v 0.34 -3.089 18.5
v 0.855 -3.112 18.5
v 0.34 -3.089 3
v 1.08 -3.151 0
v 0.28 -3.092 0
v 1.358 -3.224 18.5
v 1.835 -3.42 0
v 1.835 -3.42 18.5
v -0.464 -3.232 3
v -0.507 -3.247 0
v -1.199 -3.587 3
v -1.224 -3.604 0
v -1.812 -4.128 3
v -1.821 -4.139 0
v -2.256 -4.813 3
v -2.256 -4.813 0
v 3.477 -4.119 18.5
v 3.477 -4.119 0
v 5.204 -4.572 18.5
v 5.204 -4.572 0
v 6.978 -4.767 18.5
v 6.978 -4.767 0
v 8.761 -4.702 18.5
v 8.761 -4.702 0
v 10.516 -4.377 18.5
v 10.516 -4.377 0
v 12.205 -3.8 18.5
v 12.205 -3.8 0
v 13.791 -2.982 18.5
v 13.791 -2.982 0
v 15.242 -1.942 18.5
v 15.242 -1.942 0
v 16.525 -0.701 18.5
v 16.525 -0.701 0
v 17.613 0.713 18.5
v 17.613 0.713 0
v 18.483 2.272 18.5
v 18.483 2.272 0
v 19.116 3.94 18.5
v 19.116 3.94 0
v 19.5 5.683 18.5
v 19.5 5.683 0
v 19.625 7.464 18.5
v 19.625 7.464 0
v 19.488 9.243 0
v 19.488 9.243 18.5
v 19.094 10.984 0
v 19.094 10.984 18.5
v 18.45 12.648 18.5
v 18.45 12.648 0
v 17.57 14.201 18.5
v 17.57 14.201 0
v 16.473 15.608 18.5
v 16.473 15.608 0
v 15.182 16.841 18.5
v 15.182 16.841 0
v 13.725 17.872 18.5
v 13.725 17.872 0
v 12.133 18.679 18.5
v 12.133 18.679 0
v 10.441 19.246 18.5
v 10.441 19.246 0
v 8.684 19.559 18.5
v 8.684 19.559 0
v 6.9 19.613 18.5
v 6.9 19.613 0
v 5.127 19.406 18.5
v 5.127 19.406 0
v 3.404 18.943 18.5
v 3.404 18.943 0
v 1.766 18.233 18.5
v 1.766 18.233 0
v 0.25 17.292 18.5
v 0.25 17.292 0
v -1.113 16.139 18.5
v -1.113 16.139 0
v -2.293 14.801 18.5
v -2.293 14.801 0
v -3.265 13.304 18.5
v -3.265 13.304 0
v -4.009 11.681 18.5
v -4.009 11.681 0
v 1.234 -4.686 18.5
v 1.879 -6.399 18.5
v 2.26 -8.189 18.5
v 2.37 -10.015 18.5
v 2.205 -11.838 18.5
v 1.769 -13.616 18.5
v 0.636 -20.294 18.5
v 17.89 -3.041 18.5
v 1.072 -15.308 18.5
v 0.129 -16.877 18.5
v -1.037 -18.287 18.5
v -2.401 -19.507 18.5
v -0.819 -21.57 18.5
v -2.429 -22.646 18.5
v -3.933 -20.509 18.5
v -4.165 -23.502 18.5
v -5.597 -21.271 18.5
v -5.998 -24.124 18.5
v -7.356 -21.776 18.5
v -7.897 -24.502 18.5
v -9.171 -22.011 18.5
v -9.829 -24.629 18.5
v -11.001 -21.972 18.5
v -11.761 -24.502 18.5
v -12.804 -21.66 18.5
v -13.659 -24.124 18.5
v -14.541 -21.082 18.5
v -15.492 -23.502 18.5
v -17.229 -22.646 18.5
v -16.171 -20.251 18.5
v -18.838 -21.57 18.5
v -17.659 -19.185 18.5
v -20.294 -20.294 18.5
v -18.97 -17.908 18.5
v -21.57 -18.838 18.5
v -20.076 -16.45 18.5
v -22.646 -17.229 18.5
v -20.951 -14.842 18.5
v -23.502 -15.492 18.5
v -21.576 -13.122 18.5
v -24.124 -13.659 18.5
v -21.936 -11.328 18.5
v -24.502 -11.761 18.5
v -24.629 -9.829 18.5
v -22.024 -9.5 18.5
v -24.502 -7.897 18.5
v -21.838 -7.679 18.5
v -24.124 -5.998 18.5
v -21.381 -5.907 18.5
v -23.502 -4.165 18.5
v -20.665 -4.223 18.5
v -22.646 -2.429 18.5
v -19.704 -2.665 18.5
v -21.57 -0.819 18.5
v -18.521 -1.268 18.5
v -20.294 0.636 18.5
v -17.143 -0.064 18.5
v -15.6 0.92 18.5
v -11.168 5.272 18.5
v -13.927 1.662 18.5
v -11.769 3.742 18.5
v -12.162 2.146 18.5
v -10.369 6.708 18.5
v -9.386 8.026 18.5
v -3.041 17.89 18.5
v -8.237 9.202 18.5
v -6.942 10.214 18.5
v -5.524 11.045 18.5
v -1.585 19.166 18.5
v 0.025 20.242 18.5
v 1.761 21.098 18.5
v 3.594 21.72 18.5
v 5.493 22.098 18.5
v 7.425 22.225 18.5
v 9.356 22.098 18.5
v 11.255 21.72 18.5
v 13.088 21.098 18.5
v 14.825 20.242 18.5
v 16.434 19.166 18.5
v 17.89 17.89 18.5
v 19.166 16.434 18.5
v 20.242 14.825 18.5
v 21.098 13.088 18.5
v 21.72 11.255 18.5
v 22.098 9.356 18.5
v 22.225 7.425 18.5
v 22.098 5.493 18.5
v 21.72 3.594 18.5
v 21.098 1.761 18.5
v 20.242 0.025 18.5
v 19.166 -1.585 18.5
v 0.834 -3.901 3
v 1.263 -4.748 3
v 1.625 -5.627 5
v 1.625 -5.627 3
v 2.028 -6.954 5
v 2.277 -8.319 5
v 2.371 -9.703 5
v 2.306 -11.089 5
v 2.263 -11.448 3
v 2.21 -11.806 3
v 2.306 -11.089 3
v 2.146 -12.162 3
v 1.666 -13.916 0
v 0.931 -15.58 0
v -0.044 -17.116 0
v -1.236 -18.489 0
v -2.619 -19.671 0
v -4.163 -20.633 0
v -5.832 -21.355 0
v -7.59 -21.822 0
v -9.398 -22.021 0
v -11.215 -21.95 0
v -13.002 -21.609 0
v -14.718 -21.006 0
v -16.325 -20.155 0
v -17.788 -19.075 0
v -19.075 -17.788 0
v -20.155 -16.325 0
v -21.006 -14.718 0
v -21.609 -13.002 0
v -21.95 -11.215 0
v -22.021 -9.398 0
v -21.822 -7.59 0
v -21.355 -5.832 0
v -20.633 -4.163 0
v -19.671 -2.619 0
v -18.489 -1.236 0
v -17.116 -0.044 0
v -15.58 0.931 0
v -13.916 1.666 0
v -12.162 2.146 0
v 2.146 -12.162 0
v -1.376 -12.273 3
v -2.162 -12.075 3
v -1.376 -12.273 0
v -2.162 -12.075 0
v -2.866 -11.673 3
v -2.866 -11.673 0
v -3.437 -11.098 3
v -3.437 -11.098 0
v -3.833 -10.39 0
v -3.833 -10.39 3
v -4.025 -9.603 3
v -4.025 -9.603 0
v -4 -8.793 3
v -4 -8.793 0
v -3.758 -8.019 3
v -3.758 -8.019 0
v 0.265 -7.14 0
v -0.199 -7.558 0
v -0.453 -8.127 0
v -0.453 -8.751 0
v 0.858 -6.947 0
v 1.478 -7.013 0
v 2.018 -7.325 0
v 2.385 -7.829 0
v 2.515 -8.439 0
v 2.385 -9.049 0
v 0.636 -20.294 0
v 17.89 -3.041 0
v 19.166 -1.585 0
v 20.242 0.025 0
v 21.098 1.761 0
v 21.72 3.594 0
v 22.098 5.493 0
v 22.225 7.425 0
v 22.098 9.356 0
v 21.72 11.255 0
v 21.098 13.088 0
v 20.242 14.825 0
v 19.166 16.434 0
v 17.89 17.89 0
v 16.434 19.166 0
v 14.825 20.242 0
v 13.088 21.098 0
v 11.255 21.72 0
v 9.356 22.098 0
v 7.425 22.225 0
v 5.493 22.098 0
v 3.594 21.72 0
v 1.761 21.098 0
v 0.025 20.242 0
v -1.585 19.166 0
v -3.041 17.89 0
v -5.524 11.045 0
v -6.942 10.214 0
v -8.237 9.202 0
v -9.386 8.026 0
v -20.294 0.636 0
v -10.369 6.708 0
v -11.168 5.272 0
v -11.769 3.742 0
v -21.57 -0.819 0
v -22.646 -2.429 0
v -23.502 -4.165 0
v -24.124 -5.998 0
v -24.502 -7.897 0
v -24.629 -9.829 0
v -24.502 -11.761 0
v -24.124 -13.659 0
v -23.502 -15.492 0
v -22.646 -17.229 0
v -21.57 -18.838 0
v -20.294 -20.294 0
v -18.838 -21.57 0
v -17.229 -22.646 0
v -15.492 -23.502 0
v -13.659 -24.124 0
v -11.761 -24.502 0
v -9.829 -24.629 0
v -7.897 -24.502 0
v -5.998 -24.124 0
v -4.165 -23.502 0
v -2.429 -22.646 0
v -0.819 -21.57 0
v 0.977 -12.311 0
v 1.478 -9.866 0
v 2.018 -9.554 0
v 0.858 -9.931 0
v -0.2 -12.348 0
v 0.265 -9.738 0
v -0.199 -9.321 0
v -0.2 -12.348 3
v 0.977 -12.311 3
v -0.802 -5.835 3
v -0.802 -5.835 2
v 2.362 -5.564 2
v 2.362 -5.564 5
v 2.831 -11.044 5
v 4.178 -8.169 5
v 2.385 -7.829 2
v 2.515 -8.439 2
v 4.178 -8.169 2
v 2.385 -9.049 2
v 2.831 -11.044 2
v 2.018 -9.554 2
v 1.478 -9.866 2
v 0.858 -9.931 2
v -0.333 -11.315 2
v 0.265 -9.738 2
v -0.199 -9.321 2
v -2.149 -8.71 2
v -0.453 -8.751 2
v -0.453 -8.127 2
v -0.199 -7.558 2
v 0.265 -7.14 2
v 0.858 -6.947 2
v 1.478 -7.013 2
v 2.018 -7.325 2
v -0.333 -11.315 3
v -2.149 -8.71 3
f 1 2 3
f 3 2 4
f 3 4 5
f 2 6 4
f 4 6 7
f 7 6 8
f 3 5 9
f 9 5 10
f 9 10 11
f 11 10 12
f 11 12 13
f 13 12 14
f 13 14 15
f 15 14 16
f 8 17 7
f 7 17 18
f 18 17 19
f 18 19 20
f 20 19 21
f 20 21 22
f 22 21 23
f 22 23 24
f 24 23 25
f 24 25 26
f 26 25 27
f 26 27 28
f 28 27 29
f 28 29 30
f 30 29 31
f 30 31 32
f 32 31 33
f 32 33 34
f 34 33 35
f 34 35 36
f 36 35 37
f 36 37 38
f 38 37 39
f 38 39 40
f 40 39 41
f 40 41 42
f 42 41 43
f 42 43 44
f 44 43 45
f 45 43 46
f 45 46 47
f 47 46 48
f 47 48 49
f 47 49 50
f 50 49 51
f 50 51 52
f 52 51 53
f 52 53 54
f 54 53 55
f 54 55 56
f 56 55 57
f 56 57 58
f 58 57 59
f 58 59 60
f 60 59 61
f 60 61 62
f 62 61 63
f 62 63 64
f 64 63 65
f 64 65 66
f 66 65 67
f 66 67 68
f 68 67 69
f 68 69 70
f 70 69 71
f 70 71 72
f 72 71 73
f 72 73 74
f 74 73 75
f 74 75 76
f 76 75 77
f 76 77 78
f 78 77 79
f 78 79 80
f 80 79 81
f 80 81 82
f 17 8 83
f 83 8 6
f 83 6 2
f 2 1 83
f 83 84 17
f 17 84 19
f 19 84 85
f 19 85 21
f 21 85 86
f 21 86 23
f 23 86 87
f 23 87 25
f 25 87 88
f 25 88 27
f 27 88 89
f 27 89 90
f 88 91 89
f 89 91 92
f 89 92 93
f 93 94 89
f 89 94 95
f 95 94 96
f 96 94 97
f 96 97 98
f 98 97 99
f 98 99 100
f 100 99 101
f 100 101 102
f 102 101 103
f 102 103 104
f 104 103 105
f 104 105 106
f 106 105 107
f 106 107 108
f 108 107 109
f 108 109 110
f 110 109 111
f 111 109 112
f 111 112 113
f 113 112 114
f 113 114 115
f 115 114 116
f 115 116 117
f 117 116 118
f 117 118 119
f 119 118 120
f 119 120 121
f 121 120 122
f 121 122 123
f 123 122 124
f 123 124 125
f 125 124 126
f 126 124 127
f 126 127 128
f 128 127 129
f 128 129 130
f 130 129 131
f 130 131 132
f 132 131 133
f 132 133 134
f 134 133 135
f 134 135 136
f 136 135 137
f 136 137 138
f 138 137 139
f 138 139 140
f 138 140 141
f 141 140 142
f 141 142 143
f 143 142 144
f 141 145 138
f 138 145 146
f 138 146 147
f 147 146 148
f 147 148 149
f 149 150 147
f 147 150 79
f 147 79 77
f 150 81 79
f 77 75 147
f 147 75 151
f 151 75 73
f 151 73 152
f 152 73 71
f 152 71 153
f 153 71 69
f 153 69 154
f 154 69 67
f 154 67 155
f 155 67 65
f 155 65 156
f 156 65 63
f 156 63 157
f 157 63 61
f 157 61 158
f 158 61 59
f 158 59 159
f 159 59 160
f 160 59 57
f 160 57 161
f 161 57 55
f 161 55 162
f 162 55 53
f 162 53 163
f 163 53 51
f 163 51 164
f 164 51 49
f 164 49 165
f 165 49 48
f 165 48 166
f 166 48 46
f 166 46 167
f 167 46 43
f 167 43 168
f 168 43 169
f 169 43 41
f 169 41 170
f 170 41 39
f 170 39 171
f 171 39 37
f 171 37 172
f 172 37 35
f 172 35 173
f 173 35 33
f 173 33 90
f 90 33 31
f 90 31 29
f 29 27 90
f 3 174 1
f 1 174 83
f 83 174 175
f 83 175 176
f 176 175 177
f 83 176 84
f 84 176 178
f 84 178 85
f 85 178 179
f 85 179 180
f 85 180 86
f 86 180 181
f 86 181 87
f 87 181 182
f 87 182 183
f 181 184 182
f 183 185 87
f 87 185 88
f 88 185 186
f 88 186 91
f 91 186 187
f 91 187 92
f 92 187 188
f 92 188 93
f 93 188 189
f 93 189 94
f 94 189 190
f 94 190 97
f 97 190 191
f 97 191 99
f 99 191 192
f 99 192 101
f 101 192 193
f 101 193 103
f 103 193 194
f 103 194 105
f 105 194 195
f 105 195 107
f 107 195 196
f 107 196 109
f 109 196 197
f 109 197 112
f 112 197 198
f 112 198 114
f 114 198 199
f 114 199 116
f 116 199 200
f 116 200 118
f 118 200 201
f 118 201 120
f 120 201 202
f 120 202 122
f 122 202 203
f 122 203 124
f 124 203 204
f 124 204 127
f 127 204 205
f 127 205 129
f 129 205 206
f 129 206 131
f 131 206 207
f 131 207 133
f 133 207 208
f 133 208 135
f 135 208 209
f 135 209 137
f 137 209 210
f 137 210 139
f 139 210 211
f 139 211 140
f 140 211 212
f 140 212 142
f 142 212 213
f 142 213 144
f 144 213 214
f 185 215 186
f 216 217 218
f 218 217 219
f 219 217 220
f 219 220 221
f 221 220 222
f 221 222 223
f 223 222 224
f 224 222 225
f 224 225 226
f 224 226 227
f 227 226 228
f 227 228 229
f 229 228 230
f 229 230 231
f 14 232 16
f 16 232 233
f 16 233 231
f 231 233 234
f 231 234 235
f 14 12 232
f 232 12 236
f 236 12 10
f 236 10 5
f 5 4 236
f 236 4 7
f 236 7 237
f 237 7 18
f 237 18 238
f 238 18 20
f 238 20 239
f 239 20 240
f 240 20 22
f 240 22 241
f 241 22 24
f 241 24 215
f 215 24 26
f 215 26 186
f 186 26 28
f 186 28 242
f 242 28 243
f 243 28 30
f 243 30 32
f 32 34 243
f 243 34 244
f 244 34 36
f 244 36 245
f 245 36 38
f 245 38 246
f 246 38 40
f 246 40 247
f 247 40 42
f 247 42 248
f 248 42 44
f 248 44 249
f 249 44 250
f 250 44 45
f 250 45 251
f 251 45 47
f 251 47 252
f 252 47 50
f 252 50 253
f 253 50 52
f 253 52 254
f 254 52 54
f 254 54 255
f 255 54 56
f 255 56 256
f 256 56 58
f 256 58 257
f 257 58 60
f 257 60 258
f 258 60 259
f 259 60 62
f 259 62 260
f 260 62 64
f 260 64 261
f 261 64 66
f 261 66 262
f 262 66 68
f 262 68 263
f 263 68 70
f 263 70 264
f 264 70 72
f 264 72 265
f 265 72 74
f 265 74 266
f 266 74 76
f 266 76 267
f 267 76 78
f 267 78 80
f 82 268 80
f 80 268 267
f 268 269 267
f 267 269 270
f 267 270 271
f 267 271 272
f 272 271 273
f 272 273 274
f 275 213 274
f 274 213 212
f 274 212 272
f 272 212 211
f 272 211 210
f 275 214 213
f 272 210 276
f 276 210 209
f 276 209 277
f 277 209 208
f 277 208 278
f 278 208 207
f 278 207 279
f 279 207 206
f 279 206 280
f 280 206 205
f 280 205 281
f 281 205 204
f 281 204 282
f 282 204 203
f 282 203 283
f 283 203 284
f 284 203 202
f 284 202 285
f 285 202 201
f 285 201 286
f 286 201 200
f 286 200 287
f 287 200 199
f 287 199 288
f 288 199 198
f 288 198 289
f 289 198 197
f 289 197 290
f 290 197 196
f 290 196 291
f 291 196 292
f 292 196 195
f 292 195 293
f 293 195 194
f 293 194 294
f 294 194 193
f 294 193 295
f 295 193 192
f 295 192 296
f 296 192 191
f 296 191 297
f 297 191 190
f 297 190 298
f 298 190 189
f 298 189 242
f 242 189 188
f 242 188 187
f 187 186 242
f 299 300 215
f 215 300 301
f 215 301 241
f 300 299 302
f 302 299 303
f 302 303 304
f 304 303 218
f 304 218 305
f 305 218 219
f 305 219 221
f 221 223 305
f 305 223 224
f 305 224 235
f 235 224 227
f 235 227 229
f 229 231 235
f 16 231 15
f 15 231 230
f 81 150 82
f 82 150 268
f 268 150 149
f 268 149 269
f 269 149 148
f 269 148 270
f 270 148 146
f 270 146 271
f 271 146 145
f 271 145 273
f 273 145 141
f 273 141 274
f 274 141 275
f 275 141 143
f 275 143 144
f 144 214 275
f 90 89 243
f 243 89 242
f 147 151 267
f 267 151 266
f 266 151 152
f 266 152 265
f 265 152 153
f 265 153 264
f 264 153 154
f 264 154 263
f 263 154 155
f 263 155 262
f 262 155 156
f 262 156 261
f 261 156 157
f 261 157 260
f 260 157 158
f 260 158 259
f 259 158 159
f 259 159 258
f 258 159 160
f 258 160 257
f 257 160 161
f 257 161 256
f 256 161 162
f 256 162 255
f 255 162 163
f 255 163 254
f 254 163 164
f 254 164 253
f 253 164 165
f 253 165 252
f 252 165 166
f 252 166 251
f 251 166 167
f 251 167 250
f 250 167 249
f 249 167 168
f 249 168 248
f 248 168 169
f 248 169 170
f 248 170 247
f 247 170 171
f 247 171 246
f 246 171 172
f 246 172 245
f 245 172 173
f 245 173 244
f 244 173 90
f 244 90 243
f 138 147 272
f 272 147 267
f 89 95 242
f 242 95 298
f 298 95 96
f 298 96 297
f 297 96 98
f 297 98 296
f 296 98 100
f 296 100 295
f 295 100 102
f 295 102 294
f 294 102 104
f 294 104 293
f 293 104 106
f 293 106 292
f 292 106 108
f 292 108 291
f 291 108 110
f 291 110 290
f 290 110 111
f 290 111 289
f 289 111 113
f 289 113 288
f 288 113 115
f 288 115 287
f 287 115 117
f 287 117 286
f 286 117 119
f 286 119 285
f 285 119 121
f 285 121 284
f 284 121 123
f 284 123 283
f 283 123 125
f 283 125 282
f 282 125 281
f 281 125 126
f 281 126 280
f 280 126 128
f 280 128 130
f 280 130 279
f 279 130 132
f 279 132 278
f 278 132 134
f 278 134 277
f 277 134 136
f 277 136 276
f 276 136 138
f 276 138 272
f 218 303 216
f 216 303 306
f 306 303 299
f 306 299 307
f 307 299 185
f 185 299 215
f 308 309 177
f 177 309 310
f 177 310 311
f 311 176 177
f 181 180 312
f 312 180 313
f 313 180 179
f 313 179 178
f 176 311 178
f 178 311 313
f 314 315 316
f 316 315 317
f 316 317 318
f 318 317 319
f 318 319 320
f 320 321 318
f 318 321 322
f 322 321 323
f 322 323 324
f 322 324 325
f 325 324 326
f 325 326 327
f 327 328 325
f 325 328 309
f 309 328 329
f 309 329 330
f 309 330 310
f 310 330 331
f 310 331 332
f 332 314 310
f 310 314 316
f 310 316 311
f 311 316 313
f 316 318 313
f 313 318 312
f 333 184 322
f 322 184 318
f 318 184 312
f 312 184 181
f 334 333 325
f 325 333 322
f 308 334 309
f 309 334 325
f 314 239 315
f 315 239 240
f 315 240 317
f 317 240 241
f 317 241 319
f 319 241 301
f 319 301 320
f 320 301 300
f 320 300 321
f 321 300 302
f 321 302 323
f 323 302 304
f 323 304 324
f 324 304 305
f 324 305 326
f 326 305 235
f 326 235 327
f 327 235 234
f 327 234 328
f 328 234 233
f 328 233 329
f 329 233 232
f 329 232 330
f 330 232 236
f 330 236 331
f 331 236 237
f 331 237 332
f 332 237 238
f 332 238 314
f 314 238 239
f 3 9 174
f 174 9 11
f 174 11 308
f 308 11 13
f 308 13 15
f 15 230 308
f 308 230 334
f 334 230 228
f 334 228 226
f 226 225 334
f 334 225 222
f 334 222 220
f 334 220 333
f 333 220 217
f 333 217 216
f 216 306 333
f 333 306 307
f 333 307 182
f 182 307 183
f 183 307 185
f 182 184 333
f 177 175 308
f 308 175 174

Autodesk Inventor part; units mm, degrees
ref_plane "YZ Plane" through (0, 0, 0) normal (1, 0, 0) x (0, 1, 0)
ref_plane "XZ Plane" through (0, 0, 0) normal (0, 1, 0) x (-1, 0, 0)
ref_plane "XY Plane" through (0, 0, 0) normal (0, 0, 1) x (1, 0, 0)
sketch "Sketch1" plane through (0, 0, 0) normal (0, 0, 1) x (1, 0, 0)
  circle A0 centre (0, 0) radius 12.35
  circle A1 centre (7.4246, 7.4246) radius 12.2
  line L0 (-13.413, -13.413) -> (25.4094, 25.4094) construction
  line L1 (-10.6165, 0) -> (15.2552, 0) construction
  line L2 (7.4246, 7.4246) -> (15.8638, 6.41) construction
  line L3 (16.6649, 18.5138) -> (22.6753, 24.5242) construction
  circle A2 centre (15.8638, 6.41) radius 1.5
  line L4 (7.4246, 7.4246) -> (-1.0146, 8.4392) construction
  circle A3 centre (-1.0146, 8.4392) radius 1.5
  line L5 (0, 0) -> (-1.0146, 8.4392) construction
  line L6 (0, 0) -> (1.0146, -8.4392) construction
  circle A4 centre (1.0146, -8.4392) radius 1.5
  circle A5 centre (-9.8288, -9.8288) radius 12.2
  line L7 (-5.2409, -11.1828) -> (0, 0)
  point P0 (11.6813, -4.0087)
  point P1 (-0.7603, -1.6223)
  dimension "d0" = 24.7
  dimension "d1" = 24.4
  dimension "d2" = 0
  dimension "d3" = 45
  dimension "d4" = 0
  dimension "d5" = 10.5
  dimension "d20" = 8.5
  dimension "d21" = 3
  dimension "d22" = 3
  dimension "d23" = 3
  dimension "d24" = 24.4
  dimension "d25" = 24.4
  dimension "d26" = 4.5
extrude "Extrusion1" add sketch "Sketch1" along normal blind 3 contours A0 A5 A4 L7 A1 | A0 L7 A5 A4
sketch "Sketch3" plane through (0, 0, 3) normal (0, 0, 1) x (1, 0, 0)
  circle A0 centre (0, 0) radius 12.35
  circle A1 centre (7.4246, 7.4246) radius 12.2
  line L0 (-13.413, -13.413) -> (25.4094, 25.4094) construction
  line L1 (-10.6165, 0) -> (15.2552, 0) construction
  line L2 (7.4246, 7.4246) -> (15.8638, 6.41) construction
  line L3 (16.6649, 18.5138) -> (22.6753, 24.5242) construction
  circle A2 centre (15.8638, 6.41) radius 1.5
  line L4 (7.4246, 7.4246) -> (-1.0146, 8.4392) construction
  circle A3 centre (-1.0146, 8.4392) radius 1.5
  line L5 (0, 0) -> (-1.0146, 8.4392) construction
  line L6 (0, 0) -> (1.0146, -8.4392) construction
  circle A4 centre (1.0146, -8.4392) radius 1.5
  circle A5 centre (-9.8288, -9.8288) radius 12.2
  line L7 (-5.2409, -11.1828) -> (0, 0)
  point P0 (11.6813, -4.0087)
  point P1 (-0.7603, -1.6223)
  point P2 (-0.7743, -1.6522)
  point P3 (2.1356, -7.4425)
  point P4 (2.3507, -9.1211)
  point P5 (2.146, -12.1621)
  dimension "d32" = 24.7
  dimension "d33" = 24.4
  dimension "d34" = 0
  dimension "d35" = 45
  dimension "d36" = 0
  dimension "d37" = 10.5
  dimension "d38" = 8.5
  dimension "d39" = 3
  dimension "d40" = 3
  dimension "d41" = 3
  dimension "d42" = 24.4
  dimension "d43" = 24.4
  dimension "d44" = 4.5
extrude "Extrusion3" add sketch "Sketch3" along normal blind 15.5 contours A0 A5 A4 L7 A1 | A4 A5 picked at (2.3363, -8.2121)
sketch "Sketch4" plane through (0, 0, 3) normal (0, 0, 1) x (1, 0, 0)
  line L0 (-2.1493, -8.7099) -> (-0.8017, -5.8346)
  line L1 (-0.8017, -5.8346) -> (2.3621, -5.5639)
  line L2 (2.3621, -5.5639) -> (4.1785, -8.1686)
  line L3 (4.1785, -8.1686) -> (2.8309, -11.0439)
  line L4 (2.8309, -11.0439) -> (-0.3329, -11.3146)
  line L5 (-0.3329, -11.3146) -> (-2.1493, -8.7099)
  point P0 (0, 0)
  point P1 (1.0146, -8.4392)
  dimension "d49" = 5.5
extrude "Extrusion4" cut sketch "Sketch4" along normal blind 2 and the other way blind 1
sketch "Sketch5" plane through (0, 0, 18.5) normal (0, 0, 1) x (1, 0, 0)
  circle A0 centre (0, 0) radius 12.35
  circle A1 centre (7.4246, 7.4246) radius 12.2
  line L0 (-13.413, -13.413) -> (25.4094, 25.4094) construction
  line L1 (-10.6165, 0) -> (15.2552, 0) construction
  line L2 (7.4246, 7.4246) -> (15.8638, 6.41) construction
  line L3 (16.6649, 18.5138) -> (22.6753, 24.5242) construction
  circle A2 centre (15.8638, 6.41) radius 1.5
  line L4 (7.4246, 7.4246) -> (-1.0146, 8.4392) construction
  circle A3 centre (-1.0146, 8.4392) radius 1.5
  line L5 (0, 0) -> (-1.0146, 8.4392) construction
  line L6 (0, 0) -> (1.0146, -8.4392) construction
  circle A4 centre (1.0146, -8.4392) radius 1.5
  circle A5 centre (-9.8288, -9.8288) radius 12.2
  line L7 (-5.2409, -11.1828) -> (0, 0)
  line L8 (-30.7591, -9.8288) -> (7.4246, 28.355)
  line L9 (7.4246, 28.355) -> (28.355, 7.4246)
  line L10 (28.355, 7.4246) -> (-9.8288, -30.7591)
  line L11 (-9.8288, -30.7591) -> (-30.7591, -9.8288)
  circle A6 centre (-9.8288, -9.8288) radius 14.8
  circle A7 centre (7.4246, 7.4246) radius 14.8
  point P0 (11.6813, -4.0087)
  point P1 (-0.7603, -1.6223)
  point P2 (2.146, -12.1621)
  point P3 (-12.1621, 2.146)
  point P4 (-4.0087, 11.6813)
  point P5 (0.6364, -20.294)
  point P6 (17.8898, -3.0406)
  point P7 (-3.0406, 17.8898)
  point P8 (-20.294, 0.6364)
  dimension "d54" = 24.7
  dimension "d55" = 24.4
  dimension "d56" = 0
  dimension "d57" = 45
  dimension "d58" = 0
  dimension "d59" = 10.5
  dimension "d60" = 8.5
  dimension "d61" = 3
  dimension "d62" = 3
  dimension "d63" = 3
  dimension "d64" = 24.4
  dimension "d65" = 24.4
  dimension "d66" = 4.5
  dimension "d67" = 14.8
  dimension "d68" = 14.8
  dimension "d69" = 29.6
  dimension "d70" = 14.8
extrude "Extrusion5" add sketch "Sketch5" against normal blind 18.5 contours A0 A7 A1 | A0 A6 L8 A7 | A7 L10 A6 A0 | A0 A5 A6
fillet "Fillet1" radius 3 1 edges at (-5.2409, -11.1828, 1.5)
fillet "Fillet2" radius 3 1 edges at (-0.7603, -1.6223, 9.25)
properties part number "Hiolder_26"
